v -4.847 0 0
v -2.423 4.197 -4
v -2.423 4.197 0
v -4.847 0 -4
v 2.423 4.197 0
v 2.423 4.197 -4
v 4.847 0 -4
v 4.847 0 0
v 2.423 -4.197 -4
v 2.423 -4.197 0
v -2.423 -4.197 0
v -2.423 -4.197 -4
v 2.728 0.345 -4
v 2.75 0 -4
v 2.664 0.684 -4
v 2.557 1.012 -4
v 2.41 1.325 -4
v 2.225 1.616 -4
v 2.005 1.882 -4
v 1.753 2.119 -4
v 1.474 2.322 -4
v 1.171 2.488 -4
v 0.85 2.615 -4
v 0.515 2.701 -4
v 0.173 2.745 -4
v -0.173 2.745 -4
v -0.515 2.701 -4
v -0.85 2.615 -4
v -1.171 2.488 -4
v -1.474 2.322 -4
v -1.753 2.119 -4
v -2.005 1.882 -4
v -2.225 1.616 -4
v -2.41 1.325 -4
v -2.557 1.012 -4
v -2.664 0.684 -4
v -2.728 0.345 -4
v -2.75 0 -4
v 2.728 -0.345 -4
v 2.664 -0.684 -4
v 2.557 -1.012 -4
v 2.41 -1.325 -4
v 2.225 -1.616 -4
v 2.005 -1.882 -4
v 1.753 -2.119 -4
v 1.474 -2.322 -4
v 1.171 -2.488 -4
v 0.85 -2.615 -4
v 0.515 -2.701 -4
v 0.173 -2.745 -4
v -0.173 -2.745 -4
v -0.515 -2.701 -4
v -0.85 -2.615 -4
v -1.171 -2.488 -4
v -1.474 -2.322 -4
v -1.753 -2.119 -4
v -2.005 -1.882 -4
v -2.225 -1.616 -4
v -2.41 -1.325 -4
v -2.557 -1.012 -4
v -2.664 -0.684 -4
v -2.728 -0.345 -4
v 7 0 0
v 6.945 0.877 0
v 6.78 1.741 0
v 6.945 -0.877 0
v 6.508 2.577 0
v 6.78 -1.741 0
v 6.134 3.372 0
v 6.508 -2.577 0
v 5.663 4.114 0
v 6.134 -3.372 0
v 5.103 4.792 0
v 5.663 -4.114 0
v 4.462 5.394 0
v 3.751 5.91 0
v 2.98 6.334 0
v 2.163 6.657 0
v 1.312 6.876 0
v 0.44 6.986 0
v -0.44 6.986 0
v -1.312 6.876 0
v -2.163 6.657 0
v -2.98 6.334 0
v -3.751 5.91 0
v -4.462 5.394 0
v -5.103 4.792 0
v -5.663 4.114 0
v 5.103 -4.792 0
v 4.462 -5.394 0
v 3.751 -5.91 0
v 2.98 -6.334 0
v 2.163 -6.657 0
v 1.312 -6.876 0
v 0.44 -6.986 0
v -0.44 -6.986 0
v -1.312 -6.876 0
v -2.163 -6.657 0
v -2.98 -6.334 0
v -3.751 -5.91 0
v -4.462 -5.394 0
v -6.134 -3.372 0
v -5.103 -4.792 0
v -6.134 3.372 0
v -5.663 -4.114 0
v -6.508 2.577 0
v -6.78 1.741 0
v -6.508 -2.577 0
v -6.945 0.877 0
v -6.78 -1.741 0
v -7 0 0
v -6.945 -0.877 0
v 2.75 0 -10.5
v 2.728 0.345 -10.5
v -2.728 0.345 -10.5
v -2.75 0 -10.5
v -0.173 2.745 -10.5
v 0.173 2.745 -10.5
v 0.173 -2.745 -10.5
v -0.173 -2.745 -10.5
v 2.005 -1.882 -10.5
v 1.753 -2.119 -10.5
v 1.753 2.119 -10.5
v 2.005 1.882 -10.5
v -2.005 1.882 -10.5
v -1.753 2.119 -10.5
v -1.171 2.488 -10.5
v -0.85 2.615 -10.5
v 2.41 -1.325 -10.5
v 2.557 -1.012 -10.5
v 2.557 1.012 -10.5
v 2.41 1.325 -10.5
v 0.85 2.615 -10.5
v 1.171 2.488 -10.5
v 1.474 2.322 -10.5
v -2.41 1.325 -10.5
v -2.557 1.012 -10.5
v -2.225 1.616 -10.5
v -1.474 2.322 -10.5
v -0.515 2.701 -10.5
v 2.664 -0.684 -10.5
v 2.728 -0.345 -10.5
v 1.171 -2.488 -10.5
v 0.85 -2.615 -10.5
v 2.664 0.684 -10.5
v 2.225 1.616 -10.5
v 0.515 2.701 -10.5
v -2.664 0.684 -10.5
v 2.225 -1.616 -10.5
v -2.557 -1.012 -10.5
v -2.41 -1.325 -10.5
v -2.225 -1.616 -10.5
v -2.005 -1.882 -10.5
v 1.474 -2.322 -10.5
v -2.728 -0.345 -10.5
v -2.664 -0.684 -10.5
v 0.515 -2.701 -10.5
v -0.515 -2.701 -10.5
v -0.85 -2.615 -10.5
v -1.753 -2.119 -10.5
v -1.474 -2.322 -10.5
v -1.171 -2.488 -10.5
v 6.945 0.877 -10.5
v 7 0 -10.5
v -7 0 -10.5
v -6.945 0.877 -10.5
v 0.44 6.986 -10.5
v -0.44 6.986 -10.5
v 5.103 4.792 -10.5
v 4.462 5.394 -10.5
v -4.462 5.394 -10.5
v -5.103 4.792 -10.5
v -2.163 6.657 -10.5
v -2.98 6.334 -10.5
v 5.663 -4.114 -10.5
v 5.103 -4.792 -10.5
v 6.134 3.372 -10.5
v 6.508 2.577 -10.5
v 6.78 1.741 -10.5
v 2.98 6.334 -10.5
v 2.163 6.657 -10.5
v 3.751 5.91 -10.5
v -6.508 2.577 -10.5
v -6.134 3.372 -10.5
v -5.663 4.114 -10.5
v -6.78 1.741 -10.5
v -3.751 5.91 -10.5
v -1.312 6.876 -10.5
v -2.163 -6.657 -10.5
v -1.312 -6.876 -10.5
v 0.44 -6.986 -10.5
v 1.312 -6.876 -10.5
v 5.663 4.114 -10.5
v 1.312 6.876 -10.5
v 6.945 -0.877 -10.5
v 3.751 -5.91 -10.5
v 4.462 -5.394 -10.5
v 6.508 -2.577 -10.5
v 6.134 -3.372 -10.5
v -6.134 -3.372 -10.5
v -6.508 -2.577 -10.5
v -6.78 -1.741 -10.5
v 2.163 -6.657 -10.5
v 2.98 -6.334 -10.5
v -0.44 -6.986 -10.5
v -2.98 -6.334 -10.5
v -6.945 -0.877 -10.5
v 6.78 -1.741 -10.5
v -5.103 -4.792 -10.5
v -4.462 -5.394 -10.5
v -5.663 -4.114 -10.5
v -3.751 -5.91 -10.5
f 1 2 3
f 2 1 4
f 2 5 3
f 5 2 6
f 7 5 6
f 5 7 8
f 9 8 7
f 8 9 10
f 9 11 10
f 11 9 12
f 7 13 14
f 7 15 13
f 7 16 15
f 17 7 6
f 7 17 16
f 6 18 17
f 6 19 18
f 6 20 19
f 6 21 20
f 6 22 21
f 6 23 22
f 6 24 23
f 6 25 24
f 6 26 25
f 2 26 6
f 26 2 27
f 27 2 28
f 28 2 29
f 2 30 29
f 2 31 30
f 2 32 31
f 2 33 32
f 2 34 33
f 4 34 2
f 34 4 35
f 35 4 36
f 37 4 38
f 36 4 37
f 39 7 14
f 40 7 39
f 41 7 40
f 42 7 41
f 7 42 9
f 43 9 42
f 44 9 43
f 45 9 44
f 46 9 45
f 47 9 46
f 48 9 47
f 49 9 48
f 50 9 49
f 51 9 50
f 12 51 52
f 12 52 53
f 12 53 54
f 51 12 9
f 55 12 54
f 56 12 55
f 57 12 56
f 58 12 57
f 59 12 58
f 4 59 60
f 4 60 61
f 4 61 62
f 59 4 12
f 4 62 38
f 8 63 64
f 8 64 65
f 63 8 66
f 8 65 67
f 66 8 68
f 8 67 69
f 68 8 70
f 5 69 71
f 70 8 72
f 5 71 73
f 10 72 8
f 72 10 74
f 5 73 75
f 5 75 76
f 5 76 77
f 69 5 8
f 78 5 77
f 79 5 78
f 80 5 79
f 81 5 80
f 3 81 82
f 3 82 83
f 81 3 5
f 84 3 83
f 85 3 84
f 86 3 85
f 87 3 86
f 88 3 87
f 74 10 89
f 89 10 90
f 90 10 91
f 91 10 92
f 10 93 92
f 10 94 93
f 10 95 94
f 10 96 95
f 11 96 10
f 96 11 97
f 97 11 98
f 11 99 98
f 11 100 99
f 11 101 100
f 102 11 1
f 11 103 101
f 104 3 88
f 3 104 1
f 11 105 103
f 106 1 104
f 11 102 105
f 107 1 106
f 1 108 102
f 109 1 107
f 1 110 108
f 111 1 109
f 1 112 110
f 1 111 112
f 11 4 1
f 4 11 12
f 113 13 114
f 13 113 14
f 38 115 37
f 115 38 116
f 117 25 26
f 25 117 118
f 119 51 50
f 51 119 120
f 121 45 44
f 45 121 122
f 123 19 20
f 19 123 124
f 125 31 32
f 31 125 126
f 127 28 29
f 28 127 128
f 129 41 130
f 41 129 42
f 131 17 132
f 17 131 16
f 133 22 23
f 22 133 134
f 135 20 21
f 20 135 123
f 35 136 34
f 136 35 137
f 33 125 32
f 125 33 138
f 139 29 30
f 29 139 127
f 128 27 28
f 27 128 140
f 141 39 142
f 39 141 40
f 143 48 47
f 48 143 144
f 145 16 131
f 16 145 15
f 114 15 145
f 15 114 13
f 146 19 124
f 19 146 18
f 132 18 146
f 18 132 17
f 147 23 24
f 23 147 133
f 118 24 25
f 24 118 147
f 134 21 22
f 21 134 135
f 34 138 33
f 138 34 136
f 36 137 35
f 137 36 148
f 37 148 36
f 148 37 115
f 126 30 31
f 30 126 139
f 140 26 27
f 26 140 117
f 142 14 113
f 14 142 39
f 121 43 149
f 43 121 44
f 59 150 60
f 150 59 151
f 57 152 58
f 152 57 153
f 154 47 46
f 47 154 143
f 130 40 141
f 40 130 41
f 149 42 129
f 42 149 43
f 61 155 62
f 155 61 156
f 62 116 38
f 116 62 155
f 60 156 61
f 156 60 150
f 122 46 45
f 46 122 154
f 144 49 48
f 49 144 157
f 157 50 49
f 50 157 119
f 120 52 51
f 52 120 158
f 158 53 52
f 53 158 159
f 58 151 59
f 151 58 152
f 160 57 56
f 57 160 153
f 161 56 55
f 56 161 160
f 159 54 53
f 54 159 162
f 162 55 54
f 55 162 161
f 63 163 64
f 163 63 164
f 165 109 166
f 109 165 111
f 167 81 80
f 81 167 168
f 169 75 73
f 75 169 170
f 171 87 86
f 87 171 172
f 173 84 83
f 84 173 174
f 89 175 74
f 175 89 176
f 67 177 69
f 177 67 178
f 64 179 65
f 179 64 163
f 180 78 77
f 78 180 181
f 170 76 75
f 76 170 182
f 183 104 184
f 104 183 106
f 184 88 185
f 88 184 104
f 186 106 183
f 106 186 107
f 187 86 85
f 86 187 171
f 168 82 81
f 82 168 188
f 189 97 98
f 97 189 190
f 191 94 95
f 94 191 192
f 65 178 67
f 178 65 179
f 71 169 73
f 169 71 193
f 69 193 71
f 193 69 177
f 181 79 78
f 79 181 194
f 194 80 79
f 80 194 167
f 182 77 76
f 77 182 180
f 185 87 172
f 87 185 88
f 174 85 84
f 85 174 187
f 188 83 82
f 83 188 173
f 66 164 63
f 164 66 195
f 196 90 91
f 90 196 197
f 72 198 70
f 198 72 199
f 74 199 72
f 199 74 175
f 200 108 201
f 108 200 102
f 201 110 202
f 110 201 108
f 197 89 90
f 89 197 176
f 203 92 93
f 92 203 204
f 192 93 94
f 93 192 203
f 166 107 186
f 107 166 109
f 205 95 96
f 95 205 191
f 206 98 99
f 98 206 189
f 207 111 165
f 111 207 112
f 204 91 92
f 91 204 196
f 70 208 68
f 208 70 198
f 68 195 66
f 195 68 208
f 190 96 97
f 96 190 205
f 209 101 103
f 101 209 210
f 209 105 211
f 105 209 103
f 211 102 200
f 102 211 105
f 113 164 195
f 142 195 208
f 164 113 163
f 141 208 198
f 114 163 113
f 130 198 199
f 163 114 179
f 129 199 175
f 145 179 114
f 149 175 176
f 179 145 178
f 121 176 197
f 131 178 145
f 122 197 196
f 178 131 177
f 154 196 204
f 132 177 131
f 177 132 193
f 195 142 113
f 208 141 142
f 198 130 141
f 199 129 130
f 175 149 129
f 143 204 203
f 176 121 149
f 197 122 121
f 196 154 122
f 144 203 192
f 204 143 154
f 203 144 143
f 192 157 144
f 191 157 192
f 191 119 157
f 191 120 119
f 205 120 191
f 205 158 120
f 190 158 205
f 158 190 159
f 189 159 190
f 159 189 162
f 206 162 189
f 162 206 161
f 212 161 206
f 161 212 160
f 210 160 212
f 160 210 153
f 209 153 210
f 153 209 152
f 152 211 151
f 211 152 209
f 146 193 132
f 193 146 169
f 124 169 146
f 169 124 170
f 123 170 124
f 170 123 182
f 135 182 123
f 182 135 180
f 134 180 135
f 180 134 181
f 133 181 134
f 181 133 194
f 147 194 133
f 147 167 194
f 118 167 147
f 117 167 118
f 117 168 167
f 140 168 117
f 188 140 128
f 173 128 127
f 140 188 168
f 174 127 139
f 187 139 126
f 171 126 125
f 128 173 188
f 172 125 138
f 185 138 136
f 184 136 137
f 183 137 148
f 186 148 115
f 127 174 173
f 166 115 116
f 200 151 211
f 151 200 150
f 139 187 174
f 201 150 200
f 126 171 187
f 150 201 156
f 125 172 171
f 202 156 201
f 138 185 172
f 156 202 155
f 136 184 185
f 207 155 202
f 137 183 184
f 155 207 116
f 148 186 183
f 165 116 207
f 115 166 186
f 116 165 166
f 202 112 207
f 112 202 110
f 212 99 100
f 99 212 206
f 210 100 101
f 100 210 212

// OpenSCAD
$fn = 50;


difference() {
	union() {
		translate(v = [0, 0, -10.5000000000]) {
			cylinder(h = 10.5000000000, r = 7.0000000000);
		}
	}
	union() {
		translate(v = [0, 0, 0]) {
			rotate(a = [0, 0, 0]) {
				difference() {
					union() {
						translate(v = [0, 0, -4]) {
							#linear_extrude(height = 4) {
								polygon(points = [[4.8468000000, 0.0000000000], [2.4234000000, 4.1974519271], [-2.4234000000, 4.1974519271], [-4.8468000000, 0.0000000000], [-2.4234000000, -4.1974519271], [2.4234000000, -4.1974519271]]);
							}
						}
					}
					union();
				}
			}
		}
		#translate(v = [0, 0, -100.0000000000]) {
			cylinder(h = 200, r = 2.7500000000);
		}
	}
}
